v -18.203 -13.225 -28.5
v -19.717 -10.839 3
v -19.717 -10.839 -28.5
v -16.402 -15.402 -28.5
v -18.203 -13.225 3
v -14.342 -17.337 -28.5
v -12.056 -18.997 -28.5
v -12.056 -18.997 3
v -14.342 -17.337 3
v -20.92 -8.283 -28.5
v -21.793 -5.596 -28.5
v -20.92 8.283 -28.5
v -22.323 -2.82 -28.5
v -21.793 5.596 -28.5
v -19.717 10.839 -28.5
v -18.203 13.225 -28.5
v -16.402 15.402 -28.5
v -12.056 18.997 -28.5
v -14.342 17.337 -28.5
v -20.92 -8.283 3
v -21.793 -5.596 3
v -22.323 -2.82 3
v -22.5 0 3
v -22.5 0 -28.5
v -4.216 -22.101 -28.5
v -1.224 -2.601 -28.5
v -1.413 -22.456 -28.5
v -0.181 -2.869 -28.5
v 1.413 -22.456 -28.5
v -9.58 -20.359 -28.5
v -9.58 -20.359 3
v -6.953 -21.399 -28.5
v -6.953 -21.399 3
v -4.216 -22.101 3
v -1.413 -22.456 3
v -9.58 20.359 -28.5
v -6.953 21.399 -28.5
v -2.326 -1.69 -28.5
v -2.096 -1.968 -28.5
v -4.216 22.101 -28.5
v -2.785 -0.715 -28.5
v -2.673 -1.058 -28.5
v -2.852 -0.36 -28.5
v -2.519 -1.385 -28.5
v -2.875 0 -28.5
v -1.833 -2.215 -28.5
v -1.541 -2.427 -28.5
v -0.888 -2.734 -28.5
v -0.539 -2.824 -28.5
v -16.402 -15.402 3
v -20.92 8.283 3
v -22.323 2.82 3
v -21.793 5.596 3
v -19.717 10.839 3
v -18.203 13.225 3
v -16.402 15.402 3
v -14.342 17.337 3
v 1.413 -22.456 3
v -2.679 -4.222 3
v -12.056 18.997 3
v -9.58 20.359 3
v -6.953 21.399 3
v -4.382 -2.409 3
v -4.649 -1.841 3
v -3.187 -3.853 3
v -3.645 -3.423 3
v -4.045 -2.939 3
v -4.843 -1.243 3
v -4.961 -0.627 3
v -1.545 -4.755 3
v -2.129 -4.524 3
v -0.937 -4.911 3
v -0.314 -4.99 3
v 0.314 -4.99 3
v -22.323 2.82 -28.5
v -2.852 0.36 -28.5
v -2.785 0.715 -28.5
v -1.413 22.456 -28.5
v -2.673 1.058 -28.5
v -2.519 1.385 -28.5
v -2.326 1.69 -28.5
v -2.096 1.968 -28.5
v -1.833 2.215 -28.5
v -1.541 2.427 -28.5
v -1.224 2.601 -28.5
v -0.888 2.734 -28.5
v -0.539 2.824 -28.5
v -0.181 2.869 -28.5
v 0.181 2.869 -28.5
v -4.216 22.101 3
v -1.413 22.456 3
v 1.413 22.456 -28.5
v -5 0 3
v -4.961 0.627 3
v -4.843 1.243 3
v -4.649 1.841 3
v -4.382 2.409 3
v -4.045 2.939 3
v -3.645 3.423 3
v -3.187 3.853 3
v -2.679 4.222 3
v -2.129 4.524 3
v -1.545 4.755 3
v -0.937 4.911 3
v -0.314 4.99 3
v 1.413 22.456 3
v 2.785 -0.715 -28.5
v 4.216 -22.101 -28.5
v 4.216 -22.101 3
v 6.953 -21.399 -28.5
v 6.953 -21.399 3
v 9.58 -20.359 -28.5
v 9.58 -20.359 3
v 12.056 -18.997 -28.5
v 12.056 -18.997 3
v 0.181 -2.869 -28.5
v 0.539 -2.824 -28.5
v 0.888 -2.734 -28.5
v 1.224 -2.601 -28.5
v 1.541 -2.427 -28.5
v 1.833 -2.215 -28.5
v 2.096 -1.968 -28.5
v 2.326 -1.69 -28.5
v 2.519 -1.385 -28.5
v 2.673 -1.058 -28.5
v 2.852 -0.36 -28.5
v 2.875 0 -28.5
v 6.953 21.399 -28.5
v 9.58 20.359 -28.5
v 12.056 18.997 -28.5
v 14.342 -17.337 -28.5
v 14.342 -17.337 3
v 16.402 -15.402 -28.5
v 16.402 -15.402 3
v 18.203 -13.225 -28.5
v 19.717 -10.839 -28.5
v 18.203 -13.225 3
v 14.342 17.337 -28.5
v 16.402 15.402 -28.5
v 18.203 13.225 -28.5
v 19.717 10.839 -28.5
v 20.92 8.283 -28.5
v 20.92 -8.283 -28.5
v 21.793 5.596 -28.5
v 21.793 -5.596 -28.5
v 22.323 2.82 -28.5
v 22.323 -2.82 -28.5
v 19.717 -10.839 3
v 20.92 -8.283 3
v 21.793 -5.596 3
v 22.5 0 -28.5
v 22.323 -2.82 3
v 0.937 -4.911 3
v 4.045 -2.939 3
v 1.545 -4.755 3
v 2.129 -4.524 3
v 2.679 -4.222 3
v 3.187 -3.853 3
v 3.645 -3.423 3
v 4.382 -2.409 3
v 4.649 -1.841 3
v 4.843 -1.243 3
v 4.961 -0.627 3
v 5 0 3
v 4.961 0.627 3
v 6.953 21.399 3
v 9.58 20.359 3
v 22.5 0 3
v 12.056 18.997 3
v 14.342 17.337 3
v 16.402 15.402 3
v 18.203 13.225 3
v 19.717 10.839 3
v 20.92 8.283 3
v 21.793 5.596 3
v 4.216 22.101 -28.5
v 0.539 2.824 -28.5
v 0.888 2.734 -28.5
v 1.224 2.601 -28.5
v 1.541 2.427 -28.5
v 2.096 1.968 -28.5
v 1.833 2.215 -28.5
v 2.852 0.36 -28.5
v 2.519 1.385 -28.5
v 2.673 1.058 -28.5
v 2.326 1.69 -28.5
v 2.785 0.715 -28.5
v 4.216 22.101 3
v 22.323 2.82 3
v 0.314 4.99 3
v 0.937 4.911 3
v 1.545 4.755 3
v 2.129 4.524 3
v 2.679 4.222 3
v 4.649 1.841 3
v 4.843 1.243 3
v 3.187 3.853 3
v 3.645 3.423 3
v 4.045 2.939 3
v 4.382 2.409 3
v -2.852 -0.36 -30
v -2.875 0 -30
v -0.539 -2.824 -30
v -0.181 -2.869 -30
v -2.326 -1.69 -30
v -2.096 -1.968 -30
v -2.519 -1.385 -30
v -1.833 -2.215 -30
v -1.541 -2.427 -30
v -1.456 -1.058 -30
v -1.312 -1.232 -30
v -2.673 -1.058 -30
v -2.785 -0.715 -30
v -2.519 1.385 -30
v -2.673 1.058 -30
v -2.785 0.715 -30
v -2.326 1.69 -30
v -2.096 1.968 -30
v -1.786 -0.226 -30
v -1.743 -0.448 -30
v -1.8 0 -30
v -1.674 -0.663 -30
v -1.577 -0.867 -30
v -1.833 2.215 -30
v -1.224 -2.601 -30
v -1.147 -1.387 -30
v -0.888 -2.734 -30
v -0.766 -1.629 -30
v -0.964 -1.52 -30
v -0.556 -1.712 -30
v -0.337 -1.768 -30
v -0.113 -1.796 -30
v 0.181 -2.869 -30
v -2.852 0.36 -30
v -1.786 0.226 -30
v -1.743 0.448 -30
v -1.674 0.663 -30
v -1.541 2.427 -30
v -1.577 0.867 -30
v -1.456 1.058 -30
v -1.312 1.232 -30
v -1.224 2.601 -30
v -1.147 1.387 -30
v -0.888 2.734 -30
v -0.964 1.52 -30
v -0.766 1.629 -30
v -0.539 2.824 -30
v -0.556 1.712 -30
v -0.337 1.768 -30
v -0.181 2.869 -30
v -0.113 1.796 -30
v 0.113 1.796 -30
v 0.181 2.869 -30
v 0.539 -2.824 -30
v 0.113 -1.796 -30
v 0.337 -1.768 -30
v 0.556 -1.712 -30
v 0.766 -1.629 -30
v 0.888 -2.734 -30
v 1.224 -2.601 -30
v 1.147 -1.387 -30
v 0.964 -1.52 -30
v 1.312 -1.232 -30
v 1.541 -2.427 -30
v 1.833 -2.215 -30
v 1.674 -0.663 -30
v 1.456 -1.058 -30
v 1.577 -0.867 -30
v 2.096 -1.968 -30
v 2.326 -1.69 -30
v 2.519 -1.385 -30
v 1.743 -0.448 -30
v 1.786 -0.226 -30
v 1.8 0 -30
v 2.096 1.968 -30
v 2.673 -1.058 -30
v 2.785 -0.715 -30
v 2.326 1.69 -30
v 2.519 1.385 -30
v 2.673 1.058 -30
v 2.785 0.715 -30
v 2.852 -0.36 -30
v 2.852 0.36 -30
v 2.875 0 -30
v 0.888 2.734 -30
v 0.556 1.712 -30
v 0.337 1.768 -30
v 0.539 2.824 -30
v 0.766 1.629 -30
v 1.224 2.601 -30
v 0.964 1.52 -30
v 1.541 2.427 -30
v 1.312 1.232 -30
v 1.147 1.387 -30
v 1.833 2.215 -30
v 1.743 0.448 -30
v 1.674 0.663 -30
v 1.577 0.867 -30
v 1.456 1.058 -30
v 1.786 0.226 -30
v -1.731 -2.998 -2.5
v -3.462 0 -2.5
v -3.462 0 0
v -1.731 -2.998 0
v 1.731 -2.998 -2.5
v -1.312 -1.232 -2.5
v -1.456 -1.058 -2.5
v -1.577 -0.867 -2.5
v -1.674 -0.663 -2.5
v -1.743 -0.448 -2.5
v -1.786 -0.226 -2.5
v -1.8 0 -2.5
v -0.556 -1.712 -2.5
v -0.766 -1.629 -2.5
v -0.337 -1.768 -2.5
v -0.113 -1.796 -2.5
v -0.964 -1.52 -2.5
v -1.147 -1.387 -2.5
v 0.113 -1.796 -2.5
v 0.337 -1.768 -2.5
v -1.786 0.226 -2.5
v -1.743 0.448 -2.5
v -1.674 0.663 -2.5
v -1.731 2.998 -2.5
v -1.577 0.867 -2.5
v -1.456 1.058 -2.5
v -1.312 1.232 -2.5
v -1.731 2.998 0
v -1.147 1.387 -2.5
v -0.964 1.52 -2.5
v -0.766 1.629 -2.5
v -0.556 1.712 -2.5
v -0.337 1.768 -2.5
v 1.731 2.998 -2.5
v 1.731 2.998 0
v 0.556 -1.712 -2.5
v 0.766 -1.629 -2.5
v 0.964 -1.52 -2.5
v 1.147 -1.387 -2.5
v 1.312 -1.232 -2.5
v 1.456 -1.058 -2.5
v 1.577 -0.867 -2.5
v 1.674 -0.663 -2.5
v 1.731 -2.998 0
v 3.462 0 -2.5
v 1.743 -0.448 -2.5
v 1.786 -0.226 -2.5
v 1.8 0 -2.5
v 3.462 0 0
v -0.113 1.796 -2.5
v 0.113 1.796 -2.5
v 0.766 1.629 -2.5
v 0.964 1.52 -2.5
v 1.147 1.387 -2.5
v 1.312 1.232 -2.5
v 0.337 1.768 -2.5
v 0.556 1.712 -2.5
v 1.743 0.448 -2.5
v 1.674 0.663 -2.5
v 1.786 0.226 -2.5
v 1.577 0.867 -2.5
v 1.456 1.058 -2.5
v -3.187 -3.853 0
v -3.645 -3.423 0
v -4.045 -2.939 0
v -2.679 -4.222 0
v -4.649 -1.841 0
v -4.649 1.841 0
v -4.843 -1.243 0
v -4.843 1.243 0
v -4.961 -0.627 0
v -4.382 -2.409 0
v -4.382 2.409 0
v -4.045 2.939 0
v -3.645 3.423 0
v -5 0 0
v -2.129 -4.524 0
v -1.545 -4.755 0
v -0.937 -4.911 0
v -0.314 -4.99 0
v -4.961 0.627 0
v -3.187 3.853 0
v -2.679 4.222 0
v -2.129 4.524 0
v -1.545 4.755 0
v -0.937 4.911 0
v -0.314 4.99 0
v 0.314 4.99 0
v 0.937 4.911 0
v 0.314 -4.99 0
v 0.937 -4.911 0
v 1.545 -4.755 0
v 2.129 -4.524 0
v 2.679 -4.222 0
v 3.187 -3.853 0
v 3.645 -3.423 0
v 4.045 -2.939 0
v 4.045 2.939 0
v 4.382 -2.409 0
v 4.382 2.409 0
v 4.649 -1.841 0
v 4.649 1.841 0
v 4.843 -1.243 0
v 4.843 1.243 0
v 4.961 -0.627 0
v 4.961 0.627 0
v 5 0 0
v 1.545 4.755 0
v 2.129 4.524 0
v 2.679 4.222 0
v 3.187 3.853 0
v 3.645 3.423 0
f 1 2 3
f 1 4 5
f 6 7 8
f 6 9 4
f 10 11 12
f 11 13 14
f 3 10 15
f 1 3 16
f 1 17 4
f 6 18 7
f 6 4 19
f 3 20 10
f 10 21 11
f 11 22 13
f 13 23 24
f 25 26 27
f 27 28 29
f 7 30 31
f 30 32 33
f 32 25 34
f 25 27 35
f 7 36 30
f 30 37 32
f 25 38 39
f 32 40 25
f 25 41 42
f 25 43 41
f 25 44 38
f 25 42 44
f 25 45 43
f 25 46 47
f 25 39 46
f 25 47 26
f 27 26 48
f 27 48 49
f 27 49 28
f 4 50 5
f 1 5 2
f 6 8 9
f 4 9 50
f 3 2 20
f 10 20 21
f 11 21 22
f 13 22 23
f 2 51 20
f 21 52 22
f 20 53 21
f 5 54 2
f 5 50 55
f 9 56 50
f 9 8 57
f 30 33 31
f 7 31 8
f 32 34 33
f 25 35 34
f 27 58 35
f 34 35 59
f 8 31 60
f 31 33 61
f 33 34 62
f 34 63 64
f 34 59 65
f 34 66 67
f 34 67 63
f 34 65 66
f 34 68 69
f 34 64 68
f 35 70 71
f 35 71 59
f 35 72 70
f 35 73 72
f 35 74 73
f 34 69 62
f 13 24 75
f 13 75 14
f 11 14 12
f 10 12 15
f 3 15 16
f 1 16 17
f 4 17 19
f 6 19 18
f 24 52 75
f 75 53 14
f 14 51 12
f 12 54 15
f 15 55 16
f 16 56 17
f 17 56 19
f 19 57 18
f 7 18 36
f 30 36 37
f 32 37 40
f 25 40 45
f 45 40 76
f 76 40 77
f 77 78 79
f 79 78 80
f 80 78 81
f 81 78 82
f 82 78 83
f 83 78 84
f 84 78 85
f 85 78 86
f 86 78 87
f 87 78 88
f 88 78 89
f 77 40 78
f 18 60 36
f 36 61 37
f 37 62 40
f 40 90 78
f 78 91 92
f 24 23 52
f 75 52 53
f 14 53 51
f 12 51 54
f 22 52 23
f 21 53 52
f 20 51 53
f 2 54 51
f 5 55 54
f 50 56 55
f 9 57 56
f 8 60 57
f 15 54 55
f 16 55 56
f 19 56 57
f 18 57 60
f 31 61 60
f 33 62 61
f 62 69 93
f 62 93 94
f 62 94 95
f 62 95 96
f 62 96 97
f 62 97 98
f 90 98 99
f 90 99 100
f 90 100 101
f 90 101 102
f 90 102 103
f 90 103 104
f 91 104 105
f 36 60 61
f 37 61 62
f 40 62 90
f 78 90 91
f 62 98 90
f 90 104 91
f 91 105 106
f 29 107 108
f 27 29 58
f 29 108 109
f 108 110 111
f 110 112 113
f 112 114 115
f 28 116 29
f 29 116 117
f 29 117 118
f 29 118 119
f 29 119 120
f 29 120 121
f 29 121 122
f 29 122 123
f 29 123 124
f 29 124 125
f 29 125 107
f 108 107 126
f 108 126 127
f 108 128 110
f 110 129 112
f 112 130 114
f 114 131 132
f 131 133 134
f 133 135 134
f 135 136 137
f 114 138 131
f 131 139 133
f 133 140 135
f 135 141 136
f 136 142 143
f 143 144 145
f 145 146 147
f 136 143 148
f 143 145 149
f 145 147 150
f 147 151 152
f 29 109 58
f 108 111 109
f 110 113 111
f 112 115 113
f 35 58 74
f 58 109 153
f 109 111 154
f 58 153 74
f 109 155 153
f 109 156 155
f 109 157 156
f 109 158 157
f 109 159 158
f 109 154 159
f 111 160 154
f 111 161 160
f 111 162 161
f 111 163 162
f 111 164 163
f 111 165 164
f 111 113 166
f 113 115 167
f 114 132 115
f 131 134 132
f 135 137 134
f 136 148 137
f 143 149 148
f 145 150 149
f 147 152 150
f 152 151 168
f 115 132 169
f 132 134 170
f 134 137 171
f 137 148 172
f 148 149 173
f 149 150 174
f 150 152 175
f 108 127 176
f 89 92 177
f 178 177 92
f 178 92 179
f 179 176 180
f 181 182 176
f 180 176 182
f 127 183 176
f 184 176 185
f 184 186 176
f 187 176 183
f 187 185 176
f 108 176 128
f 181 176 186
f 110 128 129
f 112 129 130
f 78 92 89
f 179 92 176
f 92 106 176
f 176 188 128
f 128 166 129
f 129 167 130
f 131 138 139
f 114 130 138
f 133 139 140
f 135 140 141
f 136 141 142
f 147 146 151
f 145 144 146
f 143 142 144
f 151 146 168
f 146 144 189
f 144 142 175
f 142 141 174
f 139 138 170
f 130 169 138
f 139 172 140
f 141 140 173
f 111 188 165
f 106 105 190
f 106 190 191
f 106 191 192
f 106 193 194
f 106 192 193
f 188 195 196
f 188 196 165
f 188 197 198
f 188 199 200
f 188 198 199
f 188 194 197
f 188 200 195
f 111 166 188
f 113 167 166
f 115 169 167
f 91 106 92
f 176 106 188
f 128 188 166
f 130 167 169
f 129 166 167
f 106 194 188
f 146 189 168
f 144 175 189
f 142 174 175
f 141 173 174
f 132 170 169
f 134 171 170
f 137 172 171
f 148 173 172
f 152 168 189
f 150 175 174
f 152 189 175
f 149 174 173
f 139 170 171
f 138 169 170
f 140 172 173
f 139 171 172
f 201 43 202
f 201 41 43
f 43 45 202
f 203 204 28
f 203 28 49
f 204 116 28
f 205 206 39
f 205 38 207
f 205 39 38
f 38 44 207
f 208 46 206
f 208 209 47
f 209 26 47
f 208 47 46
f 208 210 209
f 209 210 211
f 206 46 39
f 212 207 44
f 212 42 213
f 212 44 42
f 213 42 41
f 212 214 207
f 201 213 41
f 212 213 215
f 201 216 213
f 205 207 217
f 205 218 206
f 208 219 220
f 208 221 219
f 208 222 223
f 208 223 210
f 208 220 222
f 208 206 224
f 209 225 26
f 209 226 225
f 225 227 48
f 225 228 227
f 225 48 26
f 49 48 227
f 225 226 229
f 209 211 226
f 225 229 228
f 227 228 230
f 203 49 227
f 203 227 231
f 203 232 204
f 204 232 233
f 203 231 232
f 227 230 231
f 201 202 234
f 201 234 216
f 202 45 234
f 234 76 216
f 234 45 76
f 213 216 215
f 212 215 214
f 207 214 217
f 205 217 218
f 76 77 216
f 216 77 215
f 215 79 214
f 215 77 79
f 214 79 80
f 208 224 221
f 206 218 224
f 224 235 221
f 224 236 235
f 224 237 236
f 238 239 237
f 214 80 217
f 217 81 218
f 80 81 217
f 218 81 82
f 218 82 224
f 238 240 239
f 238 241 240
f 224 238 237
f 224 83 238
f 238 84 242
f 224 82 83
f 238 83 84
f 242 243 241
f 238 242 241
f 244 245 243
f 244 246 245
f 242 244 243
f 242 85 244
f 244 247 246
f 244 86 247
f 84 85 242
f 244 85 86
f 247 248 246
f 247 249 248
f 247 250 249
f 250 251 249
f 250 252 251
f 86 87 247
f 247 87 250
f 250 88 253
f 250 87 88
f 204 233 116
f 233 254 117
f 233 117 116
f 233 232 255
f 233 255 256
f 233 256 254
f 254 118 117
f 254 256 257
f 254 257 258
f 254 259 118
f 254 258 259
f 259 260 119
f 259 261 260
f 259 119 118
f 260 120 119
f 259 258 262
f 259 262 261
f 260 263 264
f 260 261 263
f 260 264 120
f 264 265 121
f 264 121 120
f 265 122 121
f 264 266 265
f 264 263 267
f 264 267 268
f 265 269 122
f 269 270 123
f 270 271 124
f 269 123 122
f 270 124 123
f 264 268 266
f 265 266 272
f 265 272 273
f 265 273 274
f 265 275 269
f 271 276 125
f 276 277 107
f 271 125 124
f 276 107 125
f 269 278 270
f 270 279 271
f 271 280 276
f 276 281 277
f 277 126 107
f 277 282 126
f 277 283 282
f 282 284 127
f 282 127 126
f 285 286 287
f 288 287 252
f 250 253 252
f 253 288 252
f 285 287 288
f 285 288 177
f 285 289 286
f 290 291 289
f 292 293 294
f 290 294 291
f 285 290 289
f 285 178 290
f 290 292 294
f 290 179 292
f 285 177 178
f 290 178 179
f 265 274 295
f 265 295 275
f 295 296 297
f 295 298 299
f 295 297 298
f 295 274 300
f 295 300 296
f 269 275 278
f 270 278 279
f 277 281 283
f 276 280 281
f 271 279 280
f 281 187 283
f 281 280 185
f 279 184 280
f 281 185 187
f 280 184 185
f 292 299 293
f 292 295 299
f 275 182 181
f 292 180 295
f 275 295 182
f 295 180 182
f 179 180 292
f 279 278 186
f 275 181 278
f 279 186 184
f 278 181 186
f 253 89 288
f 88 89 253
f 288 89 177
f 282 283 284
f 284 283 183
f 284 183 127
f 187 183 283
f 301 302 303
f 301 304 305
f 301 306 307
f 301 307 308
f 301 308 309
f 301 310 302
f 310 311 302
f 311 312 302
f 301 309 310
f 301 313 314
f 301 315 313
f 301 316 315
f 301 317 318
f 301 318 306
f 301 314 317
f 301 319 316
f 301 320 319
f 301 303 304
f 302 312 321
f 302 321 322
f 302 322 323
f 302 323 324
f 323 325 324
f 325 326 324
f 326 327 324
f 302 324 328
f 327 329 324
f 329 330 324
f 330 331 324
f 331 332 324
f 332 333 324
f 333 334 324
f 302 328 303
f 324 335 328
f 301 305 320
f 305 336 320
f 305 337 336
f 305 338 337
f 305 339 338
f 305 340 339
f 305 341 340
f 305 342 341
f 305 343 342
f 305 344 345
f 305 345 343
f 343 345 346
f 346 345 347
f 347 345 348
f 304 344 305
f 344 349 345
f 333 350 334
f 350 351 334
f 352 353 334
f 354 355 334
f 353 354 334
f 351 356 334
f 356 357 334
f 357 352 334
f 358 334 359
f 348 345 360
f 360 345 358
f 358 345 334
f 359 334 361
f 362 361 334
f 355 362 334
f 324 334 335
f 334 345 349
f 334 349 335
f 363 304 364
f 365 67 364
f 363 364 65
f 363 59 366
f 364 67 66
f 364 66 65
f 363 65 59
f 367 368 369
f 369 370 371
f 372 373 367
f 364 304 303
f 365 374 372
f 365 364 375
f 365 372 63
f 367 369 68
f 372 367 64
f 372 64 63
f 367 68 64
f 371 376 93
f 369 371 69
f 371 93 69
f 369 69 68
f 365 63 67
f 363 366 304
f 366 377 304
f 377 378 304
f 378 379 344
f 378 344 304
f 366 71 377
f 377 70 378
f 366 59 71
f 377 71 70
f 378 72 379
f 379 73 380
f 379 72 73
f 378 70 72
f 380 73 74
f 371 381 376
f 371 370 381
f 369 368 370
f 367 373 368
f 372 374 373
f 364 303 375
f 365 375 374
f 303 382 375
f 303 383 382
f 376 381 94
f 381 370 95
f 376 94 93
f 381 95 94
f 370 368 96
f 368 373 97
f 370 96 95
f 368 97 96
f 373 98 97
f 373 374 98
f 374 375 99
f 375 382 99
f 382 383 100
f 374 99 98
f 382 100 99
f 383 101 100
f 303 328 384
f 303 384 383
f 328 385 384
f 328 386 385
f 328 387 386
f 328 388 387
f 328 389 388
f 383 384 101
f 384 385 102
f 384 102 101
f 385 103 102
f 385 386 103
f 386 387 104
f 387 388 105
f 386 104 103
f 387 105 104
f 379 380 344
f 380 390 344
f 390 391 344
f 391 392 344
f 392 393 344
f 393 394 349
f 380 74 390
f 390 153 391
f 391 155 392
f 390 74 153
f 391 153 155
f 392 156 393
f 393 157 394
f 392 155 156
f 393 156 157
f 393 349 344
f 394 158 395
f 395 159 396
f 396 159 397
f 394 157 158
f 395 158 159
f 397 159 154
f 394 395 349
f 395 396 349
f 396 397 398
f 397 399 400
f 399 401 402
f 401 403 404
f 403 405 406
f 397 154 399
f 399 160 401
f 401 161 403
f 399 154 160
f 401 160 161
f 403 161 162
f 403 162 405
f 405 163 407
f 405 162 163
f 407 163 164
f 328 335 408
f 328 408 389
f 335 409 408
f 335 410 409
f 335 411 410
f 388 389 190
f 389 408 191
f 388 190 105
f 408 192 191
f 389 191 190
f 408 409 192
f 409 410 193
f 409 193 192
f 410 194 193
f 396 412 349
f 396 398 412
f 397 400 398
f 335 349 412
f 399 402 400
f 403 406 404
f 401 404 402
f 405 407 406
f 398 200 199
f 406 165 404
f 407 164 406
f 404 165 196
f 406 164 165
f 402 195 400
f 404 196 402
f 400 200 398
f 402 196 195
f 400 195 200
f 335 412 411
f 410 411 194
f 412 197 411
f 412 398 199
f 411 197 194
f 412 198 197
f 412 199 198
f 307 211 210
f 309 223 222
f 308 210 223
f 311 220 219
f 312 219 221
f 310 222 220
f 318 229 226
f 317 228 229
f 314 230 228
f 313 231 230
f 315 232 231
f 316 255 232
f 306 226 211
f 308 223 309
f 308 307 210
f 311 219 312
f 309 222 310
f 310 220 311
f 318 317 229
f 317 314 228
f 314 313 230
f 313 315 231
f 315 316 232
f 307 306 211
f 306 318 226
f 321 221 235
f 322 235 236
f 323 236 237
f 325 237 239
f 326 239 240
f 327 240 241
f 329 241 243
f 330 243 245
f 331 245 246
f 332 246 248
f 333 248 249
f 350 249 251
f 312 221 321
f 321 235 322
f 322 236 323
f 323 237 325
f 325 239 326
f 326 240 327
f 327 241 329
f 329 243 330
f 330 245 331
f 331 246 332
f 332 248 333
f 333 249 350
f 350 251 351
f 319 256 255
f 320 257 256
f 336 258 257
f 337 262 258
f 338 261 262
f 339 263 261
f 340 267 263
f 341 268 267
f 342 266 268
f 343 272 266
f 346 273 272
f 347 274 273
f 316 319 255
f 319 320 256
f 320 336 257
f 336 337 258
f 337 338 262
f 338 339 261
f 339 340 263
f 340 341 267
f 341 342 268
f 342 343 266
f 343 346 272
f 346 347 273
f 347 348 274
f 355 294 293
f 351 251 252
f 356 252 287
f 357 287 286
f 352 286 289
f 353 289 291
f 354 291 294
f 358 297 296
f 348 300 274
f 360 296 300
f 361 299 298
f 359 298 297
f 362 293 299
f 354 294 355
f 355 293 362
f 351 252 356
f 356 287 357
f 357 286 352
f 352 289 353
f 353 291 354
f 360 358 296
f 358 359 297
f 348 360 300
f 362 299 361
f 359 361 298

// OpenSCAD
$fn = 50;

difference() {
	union() {
		translate(v = [0, 0, -28.5]) {
			cylinder(h = 31.5, r = 22.5);
		}
		#translate(v = [0, 0, -30.0]) {
			cylinder(h = 30, r = 2.875);
		}
	}
	union() {
		translate(v = [0, 0, 0]) {
			rotate(a = [0, 0, 0]) {
				difference() {
					union() {
						translate(v = [0, 0, -2.5]) {
							linear_extrude(height = 2.5) {
								polygon(points = [[3.4619999999999997, 0.0], [1.7310000000000003, 2.9981799479017264], [-1.7309999999999992, 2.9981799479017264], [-3.4619999999999997, 4.2397272186481365e-16], [-1.7310000000000014, -2.998179947901726], [1.7309999999999977, -2.9981799479017277]]);
							}
						}
					}
					union();
				}
			}
		}
		#cylinder(h = 3, r = 5.0);
		#translate(v = [0, 0, -100.0]) {
			cylinder(h = 200, r = 1.8);
		}
	}
}
